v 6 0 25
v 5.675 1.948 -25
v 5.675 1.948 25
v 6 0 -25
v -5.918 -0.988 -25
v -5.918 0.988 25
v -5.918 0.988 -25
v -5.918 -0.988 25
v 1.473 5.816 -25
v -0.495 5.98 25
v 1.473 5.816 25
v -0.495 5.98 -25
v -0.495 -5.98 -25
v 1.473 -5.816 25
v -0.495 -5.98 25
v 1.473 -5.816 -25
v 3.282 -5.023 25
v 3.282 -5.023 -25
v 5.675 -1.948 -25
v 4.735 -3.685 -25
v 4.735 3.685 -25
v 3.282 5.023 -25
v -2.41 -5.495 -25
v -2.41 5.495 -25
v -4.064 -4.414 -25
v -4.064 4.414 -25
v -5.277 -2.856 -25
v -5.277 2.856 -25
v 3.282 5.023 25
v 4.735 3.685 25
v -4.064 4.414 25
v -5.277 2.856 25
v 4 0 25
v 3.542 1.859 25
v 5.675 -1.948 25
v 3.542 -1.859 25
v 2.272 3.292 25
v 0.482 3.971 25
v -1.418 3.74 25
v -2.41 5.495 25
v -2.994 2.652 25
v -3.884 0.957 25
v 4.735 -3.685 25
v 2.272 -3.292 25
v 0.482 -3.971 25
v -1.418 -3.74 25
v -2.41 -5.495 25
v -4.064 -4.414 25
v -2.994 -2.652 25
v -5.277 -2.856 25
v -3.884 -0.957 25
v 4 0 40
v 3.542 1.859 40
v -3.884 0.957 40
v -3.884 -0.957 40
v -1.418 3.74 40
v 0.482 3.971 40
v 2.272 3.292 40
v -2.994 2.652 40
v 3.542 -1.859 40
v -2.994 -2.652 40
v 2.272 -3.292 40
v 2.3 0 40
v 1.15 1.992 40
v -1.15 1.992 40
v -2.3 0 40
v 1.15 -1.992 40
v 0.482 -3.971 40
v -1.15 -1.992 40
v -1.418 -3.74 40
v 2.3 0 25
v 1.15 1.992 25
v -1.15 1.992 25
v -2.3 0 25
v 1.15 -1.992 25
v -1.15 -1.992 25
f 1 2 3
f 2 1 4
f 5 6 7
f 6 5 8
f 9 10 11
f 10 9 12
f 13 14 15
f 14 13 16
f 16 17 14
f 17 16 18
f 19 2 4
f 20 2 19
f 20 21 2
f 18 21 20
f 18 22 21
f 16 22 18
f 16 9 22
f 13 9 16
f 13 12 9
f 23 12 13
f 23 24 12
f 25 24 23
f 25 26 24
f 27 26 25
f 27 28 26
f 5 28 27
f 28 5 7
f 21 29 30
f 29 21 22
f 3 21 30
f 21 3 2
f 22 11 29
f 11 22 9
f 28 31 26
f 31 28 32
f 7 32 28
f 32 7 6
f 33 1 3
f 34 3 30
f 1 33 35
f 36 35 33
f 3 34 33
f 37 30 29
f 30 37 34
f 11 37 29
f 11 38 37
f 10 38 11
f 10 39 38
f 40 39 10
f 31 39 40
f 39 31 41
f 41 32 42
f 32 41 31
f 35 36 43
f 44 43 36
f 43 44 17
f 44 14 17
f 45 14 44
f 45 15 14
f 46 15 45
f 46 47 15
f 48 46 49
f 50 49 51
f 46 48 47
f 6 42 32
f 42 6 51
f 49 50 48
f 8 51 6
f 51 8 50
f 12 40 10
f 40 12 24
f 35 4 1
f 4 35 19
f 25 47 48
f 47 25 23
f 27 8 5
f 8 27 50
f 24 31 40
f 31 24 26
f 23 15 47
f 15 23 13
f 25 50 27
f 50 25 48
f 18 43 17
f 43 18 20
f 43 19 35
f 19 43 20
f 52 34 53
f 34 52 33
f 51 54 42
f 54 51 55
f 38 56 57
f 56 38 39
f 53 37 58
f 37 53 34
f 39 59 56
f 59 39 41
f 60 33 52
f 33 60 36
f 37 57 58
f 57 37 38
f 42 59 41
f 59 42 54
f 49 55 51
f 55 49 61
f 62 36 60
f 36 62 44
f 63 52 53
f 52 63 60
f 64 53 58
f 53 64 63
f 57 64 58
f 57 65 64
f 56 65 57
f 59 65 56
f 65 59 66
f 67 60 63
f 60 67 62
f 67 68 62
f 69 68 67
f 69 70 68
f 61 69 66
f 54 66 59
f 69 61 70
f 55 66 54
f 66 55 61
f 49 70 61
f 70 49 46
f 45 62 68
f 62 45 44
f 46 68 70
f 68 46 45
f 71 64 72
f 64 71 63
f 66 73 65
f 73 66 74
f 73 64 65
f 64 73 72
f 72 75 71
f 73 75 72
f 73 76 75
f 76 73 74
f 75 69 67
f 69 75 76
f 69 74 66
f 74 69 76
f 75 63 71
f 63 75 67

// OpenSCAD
module zt(){
    cylinder(r=6,h=50,center=true);
    translate([0,0,50/2+15/2])
    cylinder(r=4,h=15,center=true);
}

difference(){
    zt();
    translate([0,0,50/2+16/2])
    cylinder(r=2.3,h=16,center=true,$fn=6);    
}
